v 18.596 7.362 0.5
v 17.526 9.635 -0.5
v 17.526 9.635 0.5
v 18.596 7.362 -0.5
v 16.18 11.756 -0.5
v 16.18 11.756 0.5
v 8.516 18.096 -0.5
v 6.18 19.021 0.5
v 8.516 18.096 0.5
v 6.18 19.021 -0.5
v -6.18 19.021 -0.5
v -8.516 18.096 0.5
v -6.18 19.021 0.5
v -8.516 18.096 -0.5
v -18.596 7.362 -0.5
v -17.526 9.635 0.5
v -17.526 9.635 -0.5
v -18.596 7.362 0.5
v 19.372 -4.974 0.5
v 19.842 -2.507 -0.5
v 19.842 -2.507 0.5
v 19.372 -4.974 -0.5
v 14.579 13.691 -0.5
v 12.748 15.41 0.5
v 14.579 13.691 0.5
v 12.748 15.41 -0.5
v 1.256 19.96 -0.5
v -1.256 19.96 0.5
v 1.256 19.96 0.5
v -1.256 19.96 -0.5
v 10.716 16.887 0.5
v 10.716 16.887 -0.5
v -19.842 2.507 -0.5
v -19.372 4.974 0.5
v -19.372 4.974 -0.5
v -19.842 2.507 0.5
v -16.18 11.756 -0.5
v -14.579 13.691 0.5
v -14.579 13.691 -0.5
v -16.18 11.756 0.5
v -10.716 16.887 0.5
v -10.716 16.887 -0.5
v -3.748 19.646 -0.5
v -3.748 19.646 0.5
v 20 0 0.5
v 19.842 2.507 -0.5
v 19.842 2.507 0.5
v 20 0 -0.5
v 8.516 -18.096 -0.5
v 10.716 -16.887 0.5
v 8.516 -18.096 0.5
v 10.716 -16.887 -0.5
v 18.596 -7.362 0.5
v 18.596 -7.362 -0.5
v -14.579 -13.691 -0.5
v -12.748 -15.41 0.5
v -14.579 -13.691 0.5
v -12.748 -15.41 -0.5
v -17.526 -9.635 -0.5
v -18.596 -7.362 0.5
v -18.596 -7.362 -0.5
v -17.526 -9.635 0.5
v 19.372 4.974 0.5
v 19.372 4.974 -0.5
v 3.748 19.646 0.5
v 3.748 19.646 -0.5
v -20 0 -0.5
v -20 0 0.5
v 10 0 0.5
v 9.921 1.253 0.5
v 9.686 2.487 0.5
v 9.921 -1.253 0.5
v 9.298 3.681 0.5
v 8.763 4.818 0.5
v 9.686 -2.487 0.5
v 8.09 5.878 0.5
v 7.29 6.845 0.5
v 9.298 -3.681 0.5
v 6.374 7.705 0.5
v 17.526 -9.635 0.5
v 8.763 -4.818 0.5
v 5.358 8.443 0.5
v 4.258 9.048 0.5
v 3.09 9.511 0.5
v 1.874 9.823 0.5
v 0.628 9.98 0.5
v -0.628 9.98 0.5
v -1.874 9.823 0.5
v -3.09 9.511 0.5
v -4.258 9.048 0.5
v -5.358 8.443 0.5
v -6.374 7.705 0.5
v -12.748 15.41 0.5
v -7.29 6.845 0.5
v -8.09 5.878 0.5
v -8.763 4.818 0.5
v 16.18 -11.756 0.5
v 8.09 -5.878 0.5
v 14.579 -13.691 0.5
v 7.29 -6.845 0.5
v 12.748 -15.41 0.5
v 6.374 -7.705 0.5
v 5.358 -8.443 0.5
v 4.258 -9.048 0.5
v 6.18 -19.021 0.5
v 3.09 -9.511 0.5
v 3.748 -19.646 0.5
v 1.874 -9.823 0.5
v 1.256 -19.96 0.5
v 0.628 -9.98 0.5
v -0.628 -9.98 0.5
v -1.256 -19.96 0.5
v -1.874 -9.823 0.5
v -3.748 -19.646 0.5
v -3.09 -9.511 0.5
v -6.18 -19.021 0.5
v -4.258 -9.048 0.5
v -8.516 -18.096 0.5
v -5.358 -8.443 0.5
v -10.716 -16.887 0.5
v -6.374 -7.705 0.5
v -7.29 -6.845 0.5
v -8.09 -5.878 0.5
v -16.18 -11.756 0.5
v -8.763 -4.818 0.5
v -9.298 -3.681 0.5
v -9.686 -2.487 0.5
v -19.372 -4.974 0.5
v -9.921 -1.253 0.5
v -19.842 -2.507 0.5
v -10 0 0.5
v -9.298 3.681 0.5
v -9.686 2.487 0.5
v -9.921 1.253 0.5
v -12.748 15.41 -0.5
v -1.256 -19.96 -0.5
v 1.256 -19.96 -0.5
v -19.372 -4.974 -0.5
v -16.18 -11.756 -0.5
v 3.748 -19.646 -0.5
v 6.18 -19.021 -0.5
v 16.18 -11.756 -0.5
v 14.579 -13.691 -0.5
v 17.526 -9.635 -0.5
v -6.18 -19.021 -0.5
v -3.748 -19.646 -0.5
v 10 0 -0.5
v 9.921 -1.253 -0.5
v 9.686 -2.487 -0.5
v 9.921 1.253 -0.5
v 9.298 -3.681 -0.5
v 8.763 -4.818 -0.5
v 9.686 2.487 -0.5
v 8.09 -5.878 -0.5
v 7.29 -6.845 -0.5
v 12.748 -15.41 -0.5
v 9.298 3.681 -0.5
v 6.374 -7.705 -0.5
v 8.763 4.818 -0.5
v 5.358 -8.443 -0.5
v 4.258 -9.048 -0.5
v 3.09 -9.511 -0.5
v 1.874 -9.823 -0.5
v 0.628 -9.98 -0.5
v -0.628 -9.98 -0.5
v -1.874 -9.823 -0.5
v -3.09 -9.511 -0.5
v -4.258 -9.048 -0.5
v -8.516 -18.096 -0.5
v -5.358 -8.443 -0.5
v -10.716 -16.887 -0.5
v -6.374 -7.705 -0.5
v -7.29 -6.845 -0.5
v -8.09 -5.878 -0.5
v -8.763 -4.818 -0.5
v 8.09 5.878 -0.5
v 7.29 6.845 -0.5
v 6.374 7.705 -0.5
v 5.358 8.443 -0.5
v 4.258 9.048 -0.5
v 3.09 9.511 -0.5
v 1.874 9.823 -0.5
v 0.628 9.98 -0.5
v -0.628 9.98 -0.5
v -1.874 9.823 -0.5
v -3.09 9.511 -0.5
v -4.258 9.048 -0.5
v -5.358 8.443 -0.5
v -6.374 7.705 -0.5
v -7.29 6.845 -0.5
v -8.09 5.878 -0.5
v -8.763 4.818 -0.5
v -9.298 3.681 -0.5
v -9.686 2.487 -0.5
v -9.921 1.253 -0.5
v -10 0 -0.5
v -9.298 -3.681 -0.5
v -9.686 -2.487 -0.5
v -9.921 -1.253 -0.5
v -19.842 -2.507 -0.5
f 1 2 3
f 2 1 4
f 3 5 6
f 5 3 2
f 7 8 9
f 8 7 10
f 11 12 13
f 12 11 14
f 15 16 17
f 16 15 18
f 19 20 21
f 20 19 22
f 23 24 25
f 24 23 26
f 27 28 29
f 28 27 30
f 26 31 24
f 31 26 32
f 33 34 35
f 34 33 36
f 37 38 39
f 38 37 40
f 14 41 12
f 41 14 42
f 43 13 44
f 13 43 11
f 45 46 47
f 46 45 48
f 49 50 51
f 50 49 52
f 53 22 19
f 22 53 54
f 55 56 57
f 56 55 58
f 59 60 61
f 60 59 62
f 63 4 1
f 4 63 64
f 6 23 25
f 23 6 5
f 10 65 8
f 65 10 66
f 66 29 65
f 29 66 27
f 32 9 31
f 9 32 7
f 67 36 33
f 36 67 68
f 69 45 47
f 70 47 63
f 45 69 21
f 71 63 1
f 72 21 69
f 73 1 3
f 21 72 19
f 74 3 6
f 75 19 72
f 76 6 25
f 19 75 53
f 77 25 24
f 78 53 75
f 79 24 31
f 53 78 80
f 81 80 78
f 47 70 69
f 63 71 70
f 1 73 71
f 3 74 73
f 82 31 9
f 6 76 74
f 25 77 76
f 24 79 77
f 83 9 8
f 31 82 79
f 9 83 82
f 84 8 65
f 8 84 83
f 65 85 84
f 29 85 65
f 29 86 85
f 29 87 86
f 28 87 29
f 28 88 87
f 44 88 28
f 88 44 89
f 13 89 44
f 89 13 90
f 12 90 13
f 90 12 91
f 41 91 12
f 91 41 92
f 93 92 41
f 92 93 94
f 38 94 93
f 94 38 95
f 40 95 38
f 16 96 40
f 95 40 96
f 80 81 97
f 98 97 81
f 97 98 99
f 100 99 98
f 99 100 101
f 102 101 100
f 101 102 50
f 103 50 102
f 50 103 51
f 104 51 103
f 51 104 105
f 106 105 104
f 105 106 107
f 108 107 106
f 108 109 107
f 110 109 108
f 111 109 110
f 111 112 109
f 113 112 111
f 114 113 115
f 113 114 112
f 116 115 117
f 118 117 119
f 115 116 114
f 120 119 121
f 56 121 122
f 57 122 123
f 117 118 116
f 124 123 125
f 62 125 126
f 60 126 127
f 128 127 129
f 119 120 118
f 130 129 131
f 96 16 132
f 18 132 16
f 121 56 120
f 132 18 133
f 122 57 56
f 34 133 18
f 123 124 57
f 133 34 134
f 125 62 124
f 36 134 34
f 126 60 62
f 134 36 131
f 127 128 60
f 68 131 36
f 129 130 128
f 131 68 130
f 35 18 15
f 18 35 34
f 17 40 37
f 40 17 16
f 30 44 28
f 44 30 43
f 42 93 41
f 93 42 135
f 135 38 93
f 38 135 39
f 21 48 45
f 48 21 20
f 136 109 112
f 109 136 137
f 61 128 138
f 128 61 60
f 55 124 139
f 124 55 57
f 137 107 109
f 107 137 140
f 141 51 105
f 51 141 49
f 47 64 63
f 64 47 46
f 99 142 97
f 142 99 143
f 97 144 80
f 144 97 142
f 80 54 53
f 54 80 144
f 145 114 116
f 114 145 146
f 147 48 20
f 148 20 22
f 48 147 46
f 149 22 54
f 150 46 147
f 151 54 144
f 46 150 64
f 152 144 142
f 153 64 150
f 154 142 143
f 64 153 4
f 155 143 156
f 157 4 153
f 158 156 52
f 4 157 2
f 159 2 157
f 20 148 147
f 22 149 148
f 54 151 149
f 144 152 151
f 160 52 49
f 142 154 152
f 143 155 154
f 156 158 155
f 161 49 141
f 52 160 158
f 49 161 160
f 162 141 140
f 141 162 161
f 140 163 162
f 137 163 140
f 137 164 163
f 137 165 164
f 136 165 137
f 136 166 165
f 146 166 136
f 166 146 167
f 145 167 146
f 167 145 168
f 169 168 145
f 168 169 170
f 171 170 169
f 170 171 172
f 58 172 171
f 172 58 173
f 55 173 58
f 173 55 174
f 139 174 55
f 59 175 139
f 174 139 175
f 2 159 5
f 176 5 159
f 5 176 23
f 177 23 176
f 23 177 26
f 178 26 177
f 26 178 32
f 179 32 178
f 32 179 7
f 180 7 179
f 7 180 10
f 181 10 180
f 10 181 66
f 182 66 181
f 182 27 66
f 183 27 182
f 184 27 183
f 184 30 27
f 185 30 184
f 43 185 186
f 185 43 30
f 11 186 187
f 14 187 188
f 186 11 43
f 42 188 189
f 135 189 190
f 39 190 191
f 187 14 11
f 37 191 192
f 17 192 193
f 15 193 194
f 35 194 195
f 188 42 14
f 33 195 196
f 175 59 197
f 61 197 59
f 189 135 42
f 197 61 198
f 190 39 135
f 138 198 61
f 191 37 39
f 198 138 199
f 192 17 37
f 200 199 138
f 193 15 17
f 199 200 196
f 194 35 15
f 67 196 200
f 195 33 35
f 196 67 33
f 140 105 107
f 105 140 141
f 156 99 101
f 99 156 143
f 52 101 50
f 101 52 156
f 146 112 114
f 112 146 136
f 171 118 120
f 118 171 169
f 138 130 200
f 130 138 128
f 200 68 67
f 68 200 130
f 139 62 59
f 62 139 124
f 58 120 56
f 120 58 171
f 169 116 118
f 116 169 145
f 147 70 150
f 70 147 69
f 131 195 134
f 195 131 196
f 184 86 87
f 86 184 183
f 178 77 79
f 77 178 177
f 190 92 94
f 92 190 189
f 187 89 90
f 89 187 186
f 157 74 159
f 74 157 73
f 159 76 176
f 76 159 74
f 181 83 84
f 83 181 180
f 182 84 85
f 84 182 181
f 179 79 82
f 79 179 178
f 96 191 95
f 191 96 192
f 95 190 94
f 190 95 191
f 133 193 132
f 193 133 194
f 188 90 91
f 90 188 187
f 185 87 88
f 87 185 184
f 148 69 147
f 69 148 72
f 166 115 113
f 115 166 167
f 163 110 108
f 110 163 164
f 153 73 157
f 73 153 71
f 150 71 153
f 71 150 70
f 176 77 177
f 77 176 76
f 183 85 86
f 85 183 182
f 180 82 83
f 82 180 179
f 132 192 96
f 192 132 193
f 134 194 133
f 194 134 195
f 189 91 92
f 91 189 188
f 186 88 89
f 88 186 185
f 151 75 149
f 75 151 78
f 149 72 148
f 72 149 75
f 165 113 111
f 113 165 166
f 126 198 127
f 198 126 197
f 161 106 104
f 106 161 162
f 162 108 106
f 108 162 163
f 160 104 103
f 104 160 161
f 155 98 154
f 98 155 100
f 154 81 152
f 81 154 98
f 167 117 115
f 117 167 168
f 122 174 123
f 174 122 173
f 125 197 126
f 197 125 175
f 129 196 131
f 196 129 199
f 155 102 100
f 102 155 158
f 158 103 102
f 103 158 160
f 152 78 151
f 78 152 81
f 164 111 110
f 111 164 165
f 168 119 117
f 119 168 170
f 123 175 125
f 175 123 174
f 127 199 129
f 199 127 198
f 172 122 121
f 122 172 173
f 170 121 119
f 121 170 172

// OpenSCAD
$fn = 50;


difference() {
	union() {
		translate(v = [0, 0, -0.5000000000]) {
			cylinder(h = 1, r = 20.0000000000);
		}
	}
	union() {
		translate(v = [0, 0, -100.0000000000]) {
			cylinder(h = 200, r = 10);
		}
	}
}
